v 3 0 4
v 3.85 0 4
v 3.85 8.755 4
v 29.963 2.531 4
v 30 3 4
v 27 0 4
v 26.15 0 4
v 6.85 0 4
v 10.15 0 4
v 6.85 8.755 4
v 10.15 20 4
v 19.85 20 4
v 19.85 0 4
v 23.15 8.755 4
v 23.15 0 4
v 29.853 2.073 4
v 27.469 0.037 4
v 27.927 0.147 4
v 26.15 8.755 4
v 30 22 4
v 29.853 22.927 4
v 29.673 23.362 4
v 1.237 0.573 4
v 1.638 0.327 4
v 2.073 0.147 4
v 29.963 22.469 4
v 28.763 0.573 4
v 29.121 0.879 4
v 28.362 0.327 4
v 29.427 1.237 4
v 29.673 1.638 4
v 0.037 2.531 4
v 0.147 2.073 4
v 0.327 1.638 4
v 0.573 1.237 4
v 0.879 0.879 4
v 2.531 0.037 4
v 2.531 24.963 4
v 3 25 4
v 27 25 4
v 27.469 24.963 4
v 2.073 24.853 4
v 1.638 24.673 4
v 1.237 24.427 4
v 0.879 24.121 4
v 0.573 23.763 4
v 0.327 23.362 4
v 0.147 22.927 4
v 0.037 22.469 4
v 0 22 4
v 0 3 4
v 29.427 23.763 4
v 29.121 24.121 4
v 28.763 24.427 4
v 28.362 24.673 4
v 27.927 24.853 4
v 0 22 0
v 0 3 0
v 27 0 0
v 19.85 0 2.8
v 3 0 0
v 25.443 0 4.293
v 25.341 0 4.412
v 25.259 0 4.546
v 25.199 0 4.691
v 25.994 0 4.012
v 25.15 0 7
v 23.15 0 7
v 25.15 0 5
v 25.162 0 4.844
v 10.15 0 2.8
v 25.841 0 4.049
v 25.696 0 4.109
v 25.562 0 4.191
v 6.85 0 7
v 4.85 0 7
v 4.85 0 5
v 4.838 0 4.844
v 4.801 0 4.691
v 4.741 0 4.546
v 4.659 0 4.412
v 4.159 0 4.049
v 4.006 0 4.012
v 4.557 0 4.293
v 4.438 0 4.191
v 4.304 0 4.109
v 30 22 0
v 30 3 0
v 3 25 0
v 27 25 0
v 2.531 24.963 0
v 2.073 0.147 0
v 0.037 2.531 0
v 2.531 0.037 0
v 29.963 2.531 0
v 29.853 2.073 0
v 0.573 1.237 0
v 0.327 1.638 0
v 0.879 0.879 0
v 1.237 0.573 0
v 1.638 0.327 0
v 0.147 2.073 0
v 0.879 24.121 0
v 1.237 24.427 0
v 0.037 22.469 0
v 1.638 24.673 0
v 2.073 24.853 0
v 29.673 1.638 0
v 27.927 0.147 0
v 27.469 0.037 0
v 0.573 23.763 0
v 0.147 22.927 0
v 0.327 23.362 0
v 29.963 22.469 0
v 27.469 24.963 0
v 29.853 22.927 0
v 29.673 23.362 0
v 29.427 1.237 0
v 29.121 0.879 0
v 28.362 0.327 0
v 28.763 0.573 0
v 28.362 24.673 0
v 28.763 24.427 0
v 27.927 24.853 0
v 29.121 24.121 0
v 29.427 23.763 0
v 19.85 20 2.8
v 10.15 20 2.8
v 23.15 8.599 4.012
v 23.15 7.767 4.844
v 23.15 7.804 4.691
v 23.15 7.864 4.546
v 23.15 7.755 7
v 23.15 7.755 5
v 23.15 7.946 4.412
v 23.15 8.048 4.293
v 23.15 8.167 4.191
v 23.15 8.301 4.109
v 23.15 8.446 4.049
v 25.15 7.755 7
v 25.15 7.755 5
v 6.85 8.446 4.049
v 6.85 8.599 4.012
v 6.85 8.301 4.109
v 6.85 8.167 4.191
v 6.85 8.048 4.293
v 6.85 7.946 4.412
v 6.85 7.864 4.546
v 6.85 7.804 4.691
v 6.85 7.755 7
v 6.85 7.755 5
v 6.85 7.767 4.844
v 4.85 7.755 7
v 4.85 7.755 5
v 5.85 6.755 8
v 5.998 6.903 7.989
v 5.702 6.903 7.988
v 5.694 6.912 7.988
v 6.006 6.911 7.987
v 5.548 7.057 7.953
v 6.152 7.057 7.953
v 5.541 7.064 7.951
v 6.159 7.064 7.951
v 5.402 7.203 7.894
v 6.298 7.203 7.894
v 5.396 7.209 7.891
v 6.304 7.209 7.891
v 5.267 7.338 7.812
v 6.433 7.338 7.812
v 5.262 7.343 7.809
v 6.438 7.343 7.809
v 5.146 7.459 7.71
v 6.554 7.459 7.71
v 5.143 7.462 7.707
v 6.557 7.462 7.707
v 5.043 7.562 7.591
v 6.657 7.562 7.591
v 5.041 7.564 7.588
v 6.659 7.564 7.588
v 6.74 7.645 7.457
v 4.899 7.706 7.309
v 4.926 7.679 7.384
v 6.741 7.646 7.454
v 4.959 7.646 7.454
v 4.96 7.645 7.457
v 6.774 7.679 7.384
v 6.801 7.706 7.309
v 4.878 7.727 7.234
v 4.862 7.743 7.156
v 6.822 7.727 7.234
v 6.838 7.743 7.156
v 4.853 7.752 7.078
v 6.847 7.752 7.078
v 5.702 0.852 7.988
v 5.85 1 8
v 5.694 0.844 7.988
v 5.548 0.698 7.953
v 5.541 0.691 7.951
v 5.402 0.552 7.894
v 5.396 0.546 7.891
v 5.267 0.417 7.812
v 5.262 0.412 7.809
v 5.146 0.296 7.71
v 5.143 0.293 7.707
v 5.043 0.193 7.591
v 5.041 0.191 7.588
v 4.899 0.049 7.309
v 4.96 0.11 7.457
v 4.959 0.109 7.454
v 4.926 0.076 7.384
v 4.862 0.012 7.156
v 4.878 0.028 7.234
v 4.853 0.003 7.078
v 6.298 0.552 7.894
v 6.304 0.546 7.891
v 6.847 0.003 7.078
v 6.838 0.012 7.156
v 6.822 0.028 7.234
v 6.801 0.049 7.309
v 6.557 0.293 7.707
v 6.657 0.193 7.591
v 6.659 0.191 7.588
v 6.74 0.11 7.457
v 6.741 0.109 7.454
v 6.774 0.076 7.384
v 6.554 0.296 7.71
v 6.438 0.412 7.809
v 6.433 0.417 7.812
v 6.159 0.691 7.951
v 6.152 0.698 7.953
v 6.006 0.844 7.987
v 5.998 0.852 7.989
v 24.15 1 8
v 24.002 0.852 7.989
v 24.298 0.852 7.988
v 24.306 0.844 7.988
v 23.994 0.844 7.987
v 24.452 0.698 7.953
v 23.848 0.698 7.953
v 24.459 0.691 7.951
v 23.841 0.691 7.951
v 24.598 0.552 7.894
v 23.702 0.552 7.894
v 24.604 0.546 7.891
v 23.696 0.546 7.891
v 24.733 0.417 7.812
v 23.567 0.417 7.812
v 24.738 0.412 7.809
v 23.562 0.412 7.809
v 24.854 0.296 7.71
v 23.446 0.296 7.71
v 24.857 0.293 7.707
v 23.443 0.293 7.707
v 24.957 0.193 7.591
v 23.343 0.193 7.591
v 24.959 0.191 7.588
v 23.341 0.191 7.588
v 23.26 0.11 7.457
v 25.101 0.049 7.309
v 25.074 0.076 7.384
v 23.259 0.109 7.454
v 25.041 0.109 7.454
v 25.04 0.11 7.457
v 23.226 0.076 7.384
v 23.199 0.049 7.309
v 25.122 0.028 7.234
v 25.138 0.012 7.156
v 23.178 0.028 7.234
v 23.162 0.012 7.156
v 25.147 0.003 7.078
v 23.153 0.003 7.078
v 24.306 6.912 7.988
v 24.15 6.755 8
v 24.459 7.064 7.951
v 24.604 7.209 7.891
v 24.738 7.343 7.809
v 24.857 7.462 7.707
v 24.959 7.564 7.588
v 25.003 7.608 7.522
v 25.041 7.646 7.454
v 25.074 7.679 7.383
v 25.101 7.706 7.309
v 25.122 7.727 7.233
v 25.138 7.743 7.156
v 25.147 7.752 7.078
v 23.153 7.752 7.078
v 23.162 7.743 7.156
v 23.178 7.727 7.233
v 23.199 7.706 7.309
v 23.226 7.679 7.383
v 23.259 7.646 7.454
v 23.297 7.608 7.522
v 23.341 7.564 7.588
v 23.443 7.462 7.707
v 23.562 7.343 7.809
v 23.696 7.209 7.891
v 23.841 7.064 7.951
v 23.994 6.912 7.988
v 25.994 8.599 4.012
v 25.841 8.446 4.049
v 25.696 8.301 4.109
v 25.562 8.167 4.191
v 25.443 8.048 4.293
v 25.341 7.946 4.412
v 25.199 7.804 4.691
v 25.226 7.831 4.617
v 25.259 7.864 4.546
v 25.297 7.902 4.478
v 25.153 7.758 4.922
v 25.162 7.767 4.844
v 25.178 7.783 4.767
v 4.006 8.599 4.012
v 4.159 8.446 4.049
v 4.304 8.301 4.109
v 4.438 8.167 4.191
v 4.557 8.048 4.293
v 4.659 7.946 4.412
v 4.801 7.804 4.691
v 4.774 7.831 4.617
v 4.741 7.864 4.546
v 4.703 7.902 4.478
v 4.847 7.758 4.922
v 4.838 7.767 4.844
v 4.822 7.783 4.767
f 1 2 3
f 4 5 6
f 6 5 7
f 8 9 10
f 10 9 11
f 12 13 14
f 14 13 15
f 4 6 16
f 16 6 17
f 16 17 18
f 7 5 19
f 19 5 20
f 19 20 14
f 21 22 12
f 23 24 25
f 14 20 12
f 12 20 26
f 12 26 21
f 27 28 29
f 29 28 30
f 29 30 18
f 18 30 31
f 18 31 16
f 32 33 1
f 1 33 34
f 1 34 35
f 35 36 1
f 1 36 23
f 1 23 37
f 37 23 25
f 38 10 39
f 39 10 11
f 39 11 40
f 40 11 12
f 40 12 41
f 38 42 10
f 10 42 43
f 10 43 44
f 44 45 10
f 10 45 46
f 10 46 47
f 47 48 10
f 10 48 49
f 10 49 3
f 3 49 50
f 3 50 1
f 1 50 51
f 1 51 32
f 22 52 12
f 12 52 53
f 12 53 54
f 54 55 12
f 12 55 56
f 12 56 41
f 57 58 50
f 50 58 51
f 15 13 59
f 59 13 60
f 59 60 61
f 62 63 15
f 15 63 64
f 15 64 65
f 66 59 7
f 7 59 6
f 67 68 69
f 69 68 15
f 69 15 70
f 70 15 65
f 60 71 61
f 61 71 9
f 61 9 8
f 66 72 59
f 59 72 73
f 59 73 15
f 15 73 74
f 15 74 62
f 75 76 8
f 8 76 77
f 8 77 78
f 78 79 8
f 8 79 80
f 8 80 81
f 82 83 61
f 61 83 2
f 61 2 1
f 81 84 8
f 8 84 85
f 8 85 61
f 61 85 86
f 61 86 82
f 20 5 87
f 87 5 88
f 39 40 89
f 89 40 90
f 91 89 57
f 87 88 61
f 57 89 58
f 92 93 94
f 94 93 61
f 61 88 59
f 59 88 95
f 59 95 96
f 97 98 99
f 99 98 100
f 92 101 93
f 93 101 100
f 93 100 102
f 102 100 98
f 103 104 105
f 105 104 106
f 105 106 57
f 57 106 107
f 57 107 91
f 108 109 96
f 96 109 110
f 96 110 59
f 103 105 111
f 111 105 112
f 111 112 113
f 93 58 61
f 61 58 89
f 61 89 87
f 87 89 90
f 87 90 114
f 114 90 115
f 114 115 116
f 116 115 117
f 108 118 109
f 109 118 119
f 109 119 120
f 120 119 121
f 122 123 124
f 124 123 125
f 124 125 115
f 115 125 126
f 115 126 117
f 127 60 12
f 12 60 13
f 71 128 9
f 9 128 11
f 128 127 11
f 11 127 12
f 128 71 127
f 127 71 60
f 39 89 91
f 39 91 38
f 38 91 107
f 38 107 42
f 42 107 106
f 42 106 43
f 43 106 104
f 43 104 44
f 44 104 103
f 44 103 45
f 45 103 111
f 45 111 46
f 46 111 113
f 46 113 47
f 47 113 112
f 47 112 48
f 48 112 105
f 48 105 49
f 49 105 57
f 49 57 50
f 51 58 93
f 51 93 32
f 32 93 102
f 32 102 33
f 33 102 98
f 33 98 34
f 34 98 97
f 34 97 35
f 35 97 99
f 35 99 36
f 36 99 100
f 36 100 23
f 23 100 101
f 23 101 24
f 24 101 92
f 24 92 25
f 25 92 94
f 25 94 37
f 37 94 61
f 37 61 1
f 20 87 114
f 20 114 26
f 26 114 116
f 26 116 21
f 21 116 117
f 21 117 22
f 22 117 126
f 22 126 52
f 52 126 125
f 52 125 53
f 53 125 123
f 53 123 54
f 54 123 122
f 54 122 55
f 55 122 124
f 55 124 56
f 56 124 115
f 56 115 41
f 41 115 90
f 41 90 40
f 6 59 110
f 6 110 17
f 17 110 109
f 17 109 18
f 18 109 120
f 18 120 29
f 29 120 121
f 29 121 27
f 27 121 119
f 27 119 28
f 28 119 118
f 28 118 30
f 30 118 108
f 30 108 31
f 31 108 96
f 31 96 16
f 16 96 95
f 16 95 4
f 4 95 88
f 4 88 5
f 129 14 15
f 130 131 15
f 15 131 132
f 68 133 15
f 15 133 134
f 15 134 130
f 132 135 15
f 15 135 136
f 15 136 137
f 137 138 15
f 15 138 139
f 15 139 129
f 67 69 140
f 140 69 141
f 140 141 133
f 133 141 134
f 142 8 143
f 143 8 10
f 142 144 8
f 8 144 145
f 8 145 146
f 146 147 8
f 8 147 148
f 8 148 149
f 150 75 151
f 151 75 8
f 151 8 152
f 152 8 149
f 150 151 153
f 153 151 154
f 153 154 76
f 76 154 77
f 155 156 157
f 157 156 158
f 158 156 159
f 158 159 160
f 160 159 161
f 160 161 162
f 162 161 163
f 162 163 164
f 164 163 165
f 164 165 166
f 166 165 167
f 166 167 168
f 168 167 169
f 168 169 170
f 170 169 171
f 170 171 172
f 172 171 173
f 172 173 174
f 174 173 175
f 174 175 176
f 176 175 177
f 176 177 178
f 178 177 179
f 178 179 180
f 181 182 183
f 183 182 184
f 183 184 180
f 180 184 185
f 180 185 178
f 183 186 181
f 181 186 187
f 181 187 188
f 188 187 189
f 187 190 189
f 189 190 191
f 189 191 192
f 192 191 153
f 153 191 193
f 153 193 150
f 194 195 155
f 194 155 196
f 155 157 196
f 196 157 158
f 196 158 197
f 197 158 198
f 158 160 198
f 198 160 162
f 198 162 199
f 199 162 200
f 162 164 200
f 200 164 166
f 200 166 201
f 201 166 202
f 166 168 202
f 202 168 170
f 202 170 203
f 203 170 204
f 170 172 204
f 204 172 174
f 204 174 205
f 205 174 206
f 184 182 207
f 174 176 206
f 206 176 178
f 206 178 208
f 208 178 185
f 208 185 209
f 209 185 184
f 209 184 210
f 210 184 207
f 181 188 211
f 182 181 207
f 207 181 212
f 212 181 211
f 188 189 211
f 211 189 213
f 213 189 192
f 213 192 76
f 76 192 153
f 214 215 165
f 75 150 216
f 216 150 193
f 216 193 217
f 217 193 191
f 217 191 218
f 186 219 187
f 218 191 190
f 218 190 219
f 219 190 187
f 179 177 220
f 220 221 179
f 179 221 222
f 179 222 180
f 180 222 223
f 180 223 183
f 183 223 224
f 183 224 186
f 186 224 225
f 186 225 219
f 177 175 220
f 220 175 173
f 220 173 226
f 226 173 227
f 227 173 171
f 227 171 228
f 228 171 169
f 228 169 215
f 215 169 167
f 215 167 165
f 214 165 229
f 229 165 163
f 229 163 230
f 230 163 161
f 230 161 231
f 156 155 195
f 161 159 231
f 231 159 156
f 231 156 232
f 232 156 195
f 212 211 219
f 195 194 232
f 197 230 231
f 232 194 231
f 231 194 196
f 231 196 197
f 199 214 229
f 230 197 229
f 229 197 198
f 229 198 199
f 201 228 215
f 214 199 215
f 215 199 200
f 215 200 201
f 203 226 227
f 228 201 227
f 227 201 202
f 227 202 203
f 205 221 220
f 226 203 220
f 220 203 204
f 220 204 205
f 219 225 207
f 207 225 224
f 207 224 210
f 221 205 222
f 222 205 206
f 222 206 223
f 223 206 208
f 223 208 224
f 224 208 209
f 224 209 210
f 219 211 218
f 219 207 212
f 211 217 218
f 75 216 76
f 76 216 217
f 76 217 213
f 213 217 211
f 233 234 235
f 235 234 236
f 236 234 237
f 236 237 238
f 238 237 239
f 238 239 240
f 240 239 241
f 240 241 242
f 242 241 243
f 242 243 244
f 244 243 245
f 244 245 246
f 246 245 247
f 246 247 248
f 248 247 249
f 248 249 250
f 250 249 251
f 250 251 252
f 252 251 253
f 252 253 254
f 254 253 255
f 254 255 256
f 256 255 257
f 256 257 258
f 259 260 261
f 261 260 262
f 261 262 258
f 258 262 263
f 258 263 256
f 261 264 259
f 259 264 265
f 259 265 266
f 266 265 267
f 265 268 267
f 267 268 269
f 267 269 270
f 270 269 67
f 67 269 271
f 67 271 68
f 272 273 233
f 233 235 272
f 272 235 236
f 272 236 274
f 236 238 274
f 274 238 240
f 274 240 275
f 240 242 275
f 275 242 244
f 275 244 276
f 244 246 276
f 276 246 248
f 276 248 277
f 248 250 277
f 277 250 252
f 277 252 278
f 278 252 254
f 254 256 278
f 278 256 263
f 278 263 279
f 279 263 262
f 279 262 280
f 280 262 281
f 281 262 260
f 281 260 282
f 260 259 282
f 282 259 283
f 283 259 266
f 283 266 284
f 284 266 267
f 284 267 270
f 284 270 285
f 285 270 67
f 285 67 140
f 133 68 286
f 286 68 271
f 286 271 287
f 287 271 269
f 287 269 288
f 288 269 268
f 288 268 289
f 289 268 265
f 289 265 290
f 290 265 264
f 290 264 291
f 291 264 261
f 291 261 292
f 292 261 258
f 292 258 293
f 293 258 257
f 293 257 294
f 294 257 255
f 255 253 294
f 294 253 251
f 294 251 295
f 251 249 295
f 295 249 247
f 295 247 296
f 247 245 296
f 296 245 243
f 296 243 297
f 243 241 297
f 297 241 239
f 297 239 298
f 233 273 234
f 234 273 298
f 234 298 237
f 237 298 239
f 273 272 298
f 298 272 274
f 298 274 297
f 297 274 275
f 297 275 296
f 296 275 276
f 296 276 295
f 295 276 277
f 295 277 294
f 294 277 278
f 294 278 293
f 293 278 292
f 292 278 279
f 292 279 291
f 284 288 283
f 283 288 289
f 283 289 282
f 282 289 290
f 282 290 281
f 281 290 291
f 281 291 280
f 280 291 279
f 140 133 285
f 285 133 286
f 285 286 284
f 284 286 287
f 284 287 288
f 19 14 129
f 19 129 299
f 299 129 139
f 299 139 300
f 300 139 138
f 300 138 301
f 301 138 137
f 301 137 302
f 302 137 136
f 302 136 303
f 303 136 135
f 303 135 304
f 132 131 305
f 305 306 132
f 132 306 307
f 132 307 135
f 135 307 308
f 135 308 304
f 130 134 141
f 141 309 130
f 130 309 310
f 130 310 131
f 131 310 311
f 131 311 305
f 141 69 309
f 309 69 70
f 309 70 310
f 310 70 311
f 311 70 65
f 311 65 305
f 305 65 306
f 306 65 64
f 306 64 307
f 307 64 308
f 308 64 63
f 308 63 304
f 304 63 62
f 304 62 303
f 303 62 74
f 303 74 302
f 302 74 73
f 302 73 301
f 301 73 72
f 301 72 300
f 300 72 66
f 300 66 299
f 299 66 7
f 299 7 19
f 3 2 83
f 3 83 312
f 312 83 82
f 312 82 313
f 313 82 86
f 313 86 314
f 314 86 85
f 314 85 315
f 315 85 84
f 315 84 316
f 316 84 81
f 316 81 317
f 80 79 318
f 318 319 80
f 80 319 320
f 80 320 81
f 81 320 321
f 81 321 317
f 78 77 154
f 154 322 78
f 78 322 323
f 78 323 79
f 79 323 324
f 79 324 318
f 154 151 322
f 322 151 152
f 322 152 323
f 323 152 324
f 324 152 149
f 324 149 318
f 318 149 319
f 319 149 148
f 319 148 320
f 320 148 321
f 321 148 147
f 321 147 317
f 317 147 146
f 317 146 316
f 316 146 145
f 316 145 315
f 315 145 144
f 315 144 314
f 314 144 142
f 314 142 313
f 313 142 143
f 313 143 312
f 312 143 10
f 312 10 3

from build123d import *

# Parameters (mm, degrees)
SKETCH1_W           = 30
SKETCH1_H           = 25
BOSS_EXTRUDE1_DEPTH = 4
SKETCH3_W           = 9.7
SKETCH3_H           = 20
CUT_EXTRUDE1_DEPTH  = 1.2
FILLET1_R           = 3
SKETCH4_W           = 2
SKETCH4_H           = 7.755081554
BOSS_EXTRUDE2_DEPTH = 4
FILLET2_R           = 1


with BuildPart() as part:
    # Sketch1 → Boss-Extrude1 (new body)
    with BuildSketch(Plane.XY):
        with Locations((15, 12.5)):
            Rectangle(SKETCH1_W, SKETCH1_H)
    extrude(amount=BOSS_EXTRUDE1_DEPTH)

    # Sketch3 → Cut-Extrude1 (cut)
    with BuildSketch(Plane.XY.offset(4)):
        with Locations((15, 10)):
            Rectangle(SKETCH3_W, SKETCH3_H)
    extrude(amount=-CUT_EXTRUDE1_DEPTH, mode=Mode.SUBTRACT)

    # Fillet1
    fillet1_edges = [part.edges().sort_by_distance(p)[0] for p in [
        (0, 25, 2),
        (30, 25, 2),
        (30, 0, 2),
        (0, 0, 2),
    ]]
    fillet(fillet1_edges, radius=FILLET1_R)

    # Sketch4 → Boss-Extrude2 (add)
    with BuildSketch(Plane.XY.offset(4)):
        with Locations((24.15, 3.877540777)):
            Rectangle(SKETCH4_W, SKETCH4_H)
        with Locations((5.85, 3.877540777)):
            Rectangle(SKETCH4_W, SKETCH4_H)
    extrude(amount=BOSS_EXTRUDE2_DEPTH)

    # Fillet2
    fillet2_edges = [part.edges().sort_by_distance(p)[0] for p in [
        (25.15, 3.877540777, 4),
        (24.15, 7.755081554, 4),
        (23.15, 3.877540777, 8),
        (24.15, 0, 8),
        (25.15, 3.877540777, 8),
        (24.15, 7.755081554, 8),
        (5.85, 7.755081554, 4),
        (4.85, 3.877540777, 4),
        (6.85, 3.877540777, 8),
        (5.85, 7.755081554, 8),
        (4.85, 3.877540777, 8),
        (5.85, 0, 8),
    ]]
    fillet(fillet2_edges, radius=FILLET2_R - 0.0001)  # a hair under: the kernel refuses the full size


solid = part.part
